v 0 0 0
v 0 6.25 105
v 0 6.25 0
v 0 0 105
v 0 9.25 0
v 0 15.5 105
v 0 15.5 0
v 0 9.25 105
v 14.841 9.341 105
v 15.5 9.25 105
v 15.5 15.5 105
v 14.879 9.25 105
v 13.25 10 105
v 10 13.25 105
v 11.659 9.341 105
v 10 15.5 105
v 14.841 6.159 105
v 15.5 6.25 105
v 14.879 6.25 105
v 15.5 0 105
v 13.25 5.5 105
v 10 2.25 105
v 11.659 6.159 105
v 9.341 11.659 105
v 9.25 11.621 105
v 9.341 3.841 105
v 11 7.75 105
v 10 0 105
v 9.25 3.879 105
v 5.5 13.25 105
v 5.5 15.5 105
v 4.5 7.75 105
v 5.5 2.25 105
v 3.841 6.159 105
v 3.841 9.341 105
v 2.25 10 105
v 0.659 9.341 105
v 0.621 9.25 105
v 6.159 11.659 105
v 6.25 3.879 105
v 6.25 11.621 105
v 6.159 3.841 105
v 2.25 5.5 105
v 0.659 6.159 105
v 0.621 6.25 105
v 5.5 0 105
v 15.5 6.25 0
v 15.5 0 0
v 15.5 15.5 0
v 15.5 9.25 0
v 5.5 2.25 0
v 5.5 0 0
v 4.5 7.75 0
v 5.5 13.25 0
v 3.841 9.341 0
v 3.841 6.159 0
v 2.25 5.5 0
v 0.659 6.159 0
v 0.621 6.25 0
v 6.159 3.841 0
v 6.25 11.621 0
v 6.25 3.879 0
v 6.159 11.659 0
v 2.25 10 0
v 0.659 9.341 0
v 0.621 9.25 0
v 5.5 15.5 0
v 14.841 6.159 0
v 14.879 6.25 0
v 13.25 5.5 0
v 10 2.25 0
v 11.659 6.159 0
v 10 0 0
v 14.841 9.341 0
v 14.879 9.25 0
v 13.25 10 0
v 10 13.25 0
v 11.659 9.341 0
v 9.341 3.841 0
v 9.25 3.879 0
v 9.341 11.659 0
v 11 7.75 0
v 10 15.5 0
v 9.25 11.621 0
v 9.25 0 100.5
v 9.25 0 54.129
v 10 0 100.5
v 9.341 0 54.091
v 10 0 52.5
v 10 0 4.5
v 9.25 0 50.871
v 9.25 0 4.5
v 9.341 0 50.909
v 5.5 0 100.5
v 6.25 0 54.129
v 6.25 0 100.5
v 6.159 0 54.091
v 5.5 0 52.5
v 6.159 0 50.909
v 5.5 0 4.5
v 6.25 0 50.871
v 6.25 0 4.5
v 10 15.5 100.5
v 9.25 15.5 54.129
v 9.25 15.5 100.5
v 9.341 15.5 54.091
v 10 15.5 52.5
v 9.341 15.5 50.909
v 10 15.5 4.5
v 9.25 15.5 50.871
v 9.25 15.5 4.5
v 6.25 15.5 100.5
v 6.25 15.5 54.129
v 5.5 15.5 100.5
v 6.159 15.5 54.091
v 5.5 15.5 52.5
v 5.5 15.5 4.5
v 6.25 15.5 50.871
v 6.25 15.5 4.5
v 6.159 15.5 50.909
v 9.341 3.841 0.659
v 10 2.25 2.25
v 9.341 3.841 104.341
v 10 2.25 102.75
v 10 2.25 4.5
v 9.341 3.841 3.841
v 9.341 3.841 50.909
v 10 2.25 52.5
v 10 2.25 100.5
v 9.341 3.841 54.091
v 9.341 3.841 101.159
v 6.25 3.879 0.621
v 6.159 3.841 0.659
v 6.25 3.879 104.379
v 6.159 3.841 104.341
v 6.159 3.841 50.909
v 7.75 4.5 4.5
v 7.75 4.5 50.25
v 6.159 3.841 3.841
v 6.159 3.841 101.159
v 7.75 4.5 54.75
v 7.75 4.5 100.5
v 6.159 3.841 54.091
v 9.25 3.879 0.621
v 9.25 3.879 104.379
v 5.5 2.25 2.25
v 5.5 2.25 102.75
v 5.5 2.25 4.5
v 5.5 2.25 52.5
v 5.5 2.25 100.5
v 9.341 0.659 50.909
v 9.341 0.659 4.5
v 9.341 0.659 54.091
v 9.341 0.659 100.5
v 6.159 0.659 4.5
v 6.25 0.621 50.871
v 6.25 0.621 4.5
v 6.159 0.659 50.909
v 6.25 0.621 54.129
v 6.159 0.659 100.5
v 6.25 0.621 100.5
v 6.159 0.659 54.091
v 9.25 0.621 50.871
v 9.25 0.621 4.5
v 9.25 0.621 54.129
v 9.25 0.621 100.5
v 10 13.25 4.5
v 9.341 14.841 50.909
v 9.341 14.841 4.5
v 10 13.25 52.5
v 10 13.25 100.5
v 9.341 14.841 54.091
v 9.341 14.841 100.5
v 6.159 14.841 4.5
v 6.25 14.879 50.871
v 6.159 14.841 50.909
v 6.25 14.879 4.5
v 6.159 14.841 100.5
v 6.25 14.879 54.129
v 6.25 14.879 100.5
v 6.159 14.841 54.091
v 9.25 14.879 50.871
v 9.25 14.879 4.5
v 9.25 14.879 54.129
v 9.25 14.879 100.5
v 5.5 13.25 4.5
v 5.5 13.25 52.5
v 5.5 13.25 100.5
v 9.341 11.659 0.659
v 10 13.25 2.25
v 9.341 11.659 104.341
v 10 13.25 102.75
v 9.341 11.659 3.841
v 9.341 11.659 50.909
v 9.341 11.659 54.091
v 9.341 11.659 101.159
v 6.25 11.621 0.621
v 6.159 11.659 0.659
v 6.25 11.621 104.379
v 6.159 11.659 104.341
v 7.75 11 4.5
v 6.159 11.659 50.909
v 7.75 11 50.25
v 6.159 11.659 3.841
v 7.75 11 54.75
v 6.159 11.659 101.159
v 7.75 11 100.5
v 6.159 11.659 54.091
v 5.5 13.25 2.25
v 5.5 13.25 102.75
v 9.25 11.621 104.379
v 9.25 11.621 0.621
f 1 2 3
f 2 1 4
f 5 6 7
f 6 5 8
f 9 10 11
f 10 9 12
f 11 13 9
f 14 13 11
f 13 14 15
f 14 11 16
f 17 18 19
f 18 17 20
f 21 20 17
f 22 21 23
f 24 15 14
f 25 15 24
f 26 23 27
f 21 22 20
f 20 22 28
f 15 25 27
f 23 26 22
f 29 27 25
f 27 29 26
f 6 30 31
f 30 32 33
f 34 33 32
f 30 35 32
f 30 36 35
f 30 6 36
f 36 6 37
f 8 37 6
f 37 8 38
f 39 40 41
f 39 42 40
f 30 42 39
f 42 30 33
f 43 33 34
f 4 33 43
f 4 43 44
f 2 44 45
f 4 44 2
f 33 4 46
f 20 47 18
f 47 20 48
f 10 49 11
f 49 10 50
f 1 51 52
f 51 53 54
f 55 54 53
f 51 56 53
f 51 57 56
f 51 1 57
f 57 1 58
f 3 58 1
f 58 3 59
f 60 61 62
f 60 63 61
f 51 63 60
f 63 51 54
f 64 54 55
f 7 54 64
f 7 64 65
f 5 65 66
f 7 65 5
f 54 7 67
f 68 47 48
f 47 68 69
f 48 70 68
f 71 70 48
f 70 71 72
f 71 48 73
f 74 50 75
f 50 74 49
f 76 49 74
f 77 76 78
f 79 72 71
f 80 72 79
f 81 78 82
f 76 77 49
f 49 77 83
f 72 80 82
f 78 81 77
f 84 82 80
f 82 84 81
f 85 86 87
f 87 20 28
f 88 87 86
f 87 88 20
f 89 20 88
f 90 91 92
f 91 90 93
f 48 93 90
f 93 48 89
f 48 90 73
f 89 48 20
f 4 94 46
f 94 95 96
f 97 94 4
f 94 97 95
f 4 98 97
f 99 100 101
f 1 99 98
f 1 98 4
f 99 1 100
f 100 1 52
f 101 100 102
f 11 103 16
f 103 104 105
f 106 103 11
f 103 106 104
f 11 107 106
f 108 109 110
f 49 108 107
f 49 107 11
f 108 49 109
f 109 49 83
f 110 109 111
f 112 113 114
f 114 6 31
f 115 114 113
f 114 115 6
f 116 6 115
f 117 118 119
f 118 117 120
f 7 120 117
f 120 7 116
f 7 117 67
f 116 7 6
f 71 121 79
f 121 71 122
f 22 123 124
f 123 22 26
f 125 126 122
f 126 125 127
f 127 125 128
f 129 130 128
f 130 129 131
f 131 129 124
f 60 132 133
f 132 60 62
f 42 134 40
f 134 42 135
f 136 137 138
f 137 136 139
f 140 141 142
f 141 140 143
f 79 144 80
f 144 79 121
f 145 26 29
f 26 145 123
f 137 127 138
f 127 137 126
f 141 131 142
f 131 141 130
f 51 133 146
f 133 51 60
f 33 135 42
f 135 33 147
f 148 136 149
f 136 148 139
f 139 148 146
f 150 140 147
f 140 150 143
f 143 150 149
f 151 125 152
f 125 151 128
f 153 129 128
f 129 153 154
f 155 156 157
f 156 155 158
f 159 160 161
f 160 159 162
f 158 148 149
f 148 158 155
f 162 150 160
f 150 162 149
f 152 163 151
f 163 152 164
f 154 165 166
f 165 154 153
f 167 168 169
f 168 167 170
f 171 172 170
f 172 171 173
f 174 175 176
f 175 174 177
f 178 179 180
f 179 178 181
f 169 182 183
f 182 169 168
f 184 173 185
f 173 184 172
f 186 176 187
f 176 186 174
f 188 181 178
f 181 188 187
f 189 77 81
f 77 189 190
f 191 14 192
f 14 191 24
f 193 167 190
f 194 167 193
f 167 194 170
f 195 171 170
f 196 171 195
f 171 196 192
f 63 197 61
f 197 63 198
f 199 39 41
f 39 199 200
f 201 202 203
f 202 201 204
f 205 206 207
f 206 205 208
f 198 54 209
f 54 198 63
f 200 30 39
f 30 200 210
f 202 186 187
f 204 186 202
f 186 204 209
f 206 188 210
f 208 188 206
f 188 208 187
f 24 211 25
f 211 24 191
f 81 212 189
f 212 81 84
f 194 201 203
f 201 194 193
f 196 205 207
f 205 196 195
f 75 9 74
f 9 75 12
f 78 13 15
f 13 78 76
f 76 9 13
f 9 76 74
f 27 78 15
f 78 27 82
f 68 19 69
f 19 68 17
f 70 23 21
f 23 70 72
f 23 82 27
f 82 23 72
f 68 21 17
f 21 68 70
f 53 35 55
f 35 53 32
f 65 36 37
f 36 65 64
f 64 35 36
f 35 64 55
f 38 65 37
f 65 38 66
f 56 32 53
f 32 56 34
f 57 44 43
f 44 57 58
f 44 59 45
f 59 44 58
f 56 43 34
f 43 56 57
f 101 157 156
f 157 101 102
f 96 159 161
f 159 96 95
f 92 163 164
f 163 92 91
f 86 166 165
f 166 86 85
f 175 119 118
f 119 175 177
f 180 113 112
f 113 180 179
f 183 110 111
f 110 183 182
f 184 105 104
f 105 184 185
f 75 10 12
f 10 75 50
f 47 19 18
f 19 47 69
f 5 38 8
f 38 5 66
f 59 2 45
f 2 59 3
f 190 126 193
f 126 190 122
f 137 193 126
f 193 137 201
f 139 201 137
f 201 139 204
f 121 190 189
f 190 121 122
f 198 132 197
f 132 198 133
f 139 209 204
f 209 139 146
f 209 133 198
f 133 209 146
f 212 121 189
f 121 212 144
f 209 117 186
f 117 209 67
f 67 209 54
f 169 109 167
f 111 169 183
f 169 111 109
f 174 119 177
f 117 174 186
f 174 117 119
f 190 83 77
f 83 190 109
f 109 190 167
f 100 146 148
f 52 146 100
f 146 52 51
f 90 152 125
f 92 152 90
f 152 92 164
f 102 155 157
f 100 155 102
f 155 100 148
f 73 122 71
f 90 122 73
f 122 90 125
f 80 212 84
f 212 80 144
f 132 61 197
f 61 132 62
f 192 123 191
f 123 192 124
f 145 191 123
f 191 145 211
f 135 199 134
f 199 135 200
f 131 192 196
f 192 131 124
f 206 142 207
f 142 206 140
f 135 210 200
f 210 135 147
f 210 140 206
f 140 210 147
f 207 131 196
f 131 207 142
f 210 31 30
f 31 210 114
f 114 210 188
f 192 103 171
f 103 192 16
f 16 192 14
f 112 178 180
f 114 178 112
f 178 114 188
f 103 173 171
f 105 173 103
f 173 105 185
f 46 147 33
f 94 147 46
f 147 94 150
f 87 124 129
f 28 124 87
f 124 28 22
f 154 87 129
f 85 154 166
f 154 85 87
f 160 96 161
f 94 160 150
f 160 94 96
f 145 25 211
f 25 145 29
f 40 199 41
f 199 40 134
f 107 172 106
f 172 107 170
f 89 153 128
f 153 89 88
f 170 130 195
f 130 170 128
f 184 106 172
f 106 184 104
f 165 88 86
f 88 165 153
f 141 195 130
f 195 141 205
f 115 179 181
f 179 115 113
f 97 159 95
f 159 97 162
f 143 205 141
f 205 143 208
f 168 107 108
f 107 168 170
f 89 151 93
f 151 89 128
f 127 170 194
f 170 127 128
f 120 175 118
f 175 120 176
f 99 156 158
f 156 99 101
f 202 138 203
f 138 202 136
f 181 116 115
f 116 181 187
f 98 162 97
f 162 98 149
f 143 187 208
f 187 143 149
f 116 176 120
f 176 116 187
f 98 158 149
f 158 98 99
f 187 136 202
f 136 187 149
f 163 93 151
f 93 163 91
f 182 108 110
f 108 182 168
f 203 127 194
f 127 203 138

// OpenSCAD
/**
 * Create a Fischertechnik compatible building block with hole for axis.
 *
 * @author Brian Schroeder
 * @since 21.04.2020
 */

/* [Block length] */
// Building block length in millimeters
BlockLength=105; // [30, 45, 60, 75, 90, 105, 120]

/* [Has Hole in center] */
// Building block has hole for 4mm axis in the center
HasHole=true; // [false, true]

/*
 * Create the Fischertechnik compatible building block with length passed by the argument.
 *
 * @param ftiBlockLength block length in millimeters (default is 90)
 * @param ftiHasHole block has hole for 4mm axis in the center if true (default is true)
 */
module ftiBuildingBlock15x15(ftiBlockLength=90, ftiHasHole=true) {

    difference() {
        dFti=4.5; // axis diameter 4mm + some space around
        dBlock=15.5; // block (max) diameter + some more around (adjust to Your printer)
        gFtiW=3; // with of gap
        gFtiD=2; // depth of gap
        cube([dBlock, dBlock, ftiBlockLength]);
        // axis
        translate([dBlock/2,dFti/2,0])cylinder(h=ftiBlockLength, d=dFti);
        translate([dBlock/2,dBlock-dFti/2,0])cylinder(h=ftiBlockLength, d=dFti);
        translate([dBlock-dFti/2,dBlock/2,0])cylinder(h=ftiBlockLength, d=dFti);
        translate([dFti/2,dBlock/2,0])cylinder(h=ftiBlockLength, d=dFti);
        // space
        translate([dBlock/2-gFtiW/2,0,0])cube([gFtiW, gFtiD, ftiBlockLength]);
        translate([dBlock/2-gFtiW/2,dBlock-gFtiD,0])cube([gFtiW, gFtiD, ftiBlockLength]);
        translate([dBlock-gFtiW/2,dBlock/2-gFtiW/2,0])cube([gFtiD, gFtiW, ftiBlockLength]);
        translate([0,dBlock/2-gFtiW/2,0])cube([gFtiD, gFtiW, ftiBlockLength]);
        // orthoganal axis at end
        translate([dBlock/2, dBlock, dFti/2])rotate([90, 0, 0])cylinder(h=dBlock, d=dFti);
        translate([dBlock/2-dFti/2, dBlock-dFti/2, 0])cube([dFti, dFti, dFti]);
        translate([dBlock/2-dFti/2, 0-dFti/2, 0])cube([dFti, dFti, dFti]);
        translate([dBlock/2+gFtiW/2, 0, -gFtiD/2])rotate([270, 180, 0])cube([gFtiW, gFtiD, dBlock]);
        // orthoganal axis at other end
        translate([dBlock/2, dBlock, ftiBlockLength-dFti/2])rotate([90, 0, 0])cylinder(h=dBlock, d=dFti);
        translate([dBlock/2-dFti/2, dBlock-dFti/2, ftiBlockLength-dFti])cube([dFti, dFti, dFti]);
        translate([dBlock/2-dFti/2, 0-dFti/2, ftiBlockLength-dFti])cube([dFti, dFti, dFti]);
        translate([dBlock/2+gFtiW/2, 0, ftiBlockLength-gFtiD/2])rotate([270, 180, 0])cube([gFtiW, gFtiD, dBlock]);
        // hole
        if (ftiHasHole) {
            translate([dBlock/2, dBlock, ftiBlockLength/2])rotate([90, 0, 0])cylinder(h=dBlock, d=dFti);
        }
    }
}

ftiBuildingBlock15x15(BlockLength, HasHole);
